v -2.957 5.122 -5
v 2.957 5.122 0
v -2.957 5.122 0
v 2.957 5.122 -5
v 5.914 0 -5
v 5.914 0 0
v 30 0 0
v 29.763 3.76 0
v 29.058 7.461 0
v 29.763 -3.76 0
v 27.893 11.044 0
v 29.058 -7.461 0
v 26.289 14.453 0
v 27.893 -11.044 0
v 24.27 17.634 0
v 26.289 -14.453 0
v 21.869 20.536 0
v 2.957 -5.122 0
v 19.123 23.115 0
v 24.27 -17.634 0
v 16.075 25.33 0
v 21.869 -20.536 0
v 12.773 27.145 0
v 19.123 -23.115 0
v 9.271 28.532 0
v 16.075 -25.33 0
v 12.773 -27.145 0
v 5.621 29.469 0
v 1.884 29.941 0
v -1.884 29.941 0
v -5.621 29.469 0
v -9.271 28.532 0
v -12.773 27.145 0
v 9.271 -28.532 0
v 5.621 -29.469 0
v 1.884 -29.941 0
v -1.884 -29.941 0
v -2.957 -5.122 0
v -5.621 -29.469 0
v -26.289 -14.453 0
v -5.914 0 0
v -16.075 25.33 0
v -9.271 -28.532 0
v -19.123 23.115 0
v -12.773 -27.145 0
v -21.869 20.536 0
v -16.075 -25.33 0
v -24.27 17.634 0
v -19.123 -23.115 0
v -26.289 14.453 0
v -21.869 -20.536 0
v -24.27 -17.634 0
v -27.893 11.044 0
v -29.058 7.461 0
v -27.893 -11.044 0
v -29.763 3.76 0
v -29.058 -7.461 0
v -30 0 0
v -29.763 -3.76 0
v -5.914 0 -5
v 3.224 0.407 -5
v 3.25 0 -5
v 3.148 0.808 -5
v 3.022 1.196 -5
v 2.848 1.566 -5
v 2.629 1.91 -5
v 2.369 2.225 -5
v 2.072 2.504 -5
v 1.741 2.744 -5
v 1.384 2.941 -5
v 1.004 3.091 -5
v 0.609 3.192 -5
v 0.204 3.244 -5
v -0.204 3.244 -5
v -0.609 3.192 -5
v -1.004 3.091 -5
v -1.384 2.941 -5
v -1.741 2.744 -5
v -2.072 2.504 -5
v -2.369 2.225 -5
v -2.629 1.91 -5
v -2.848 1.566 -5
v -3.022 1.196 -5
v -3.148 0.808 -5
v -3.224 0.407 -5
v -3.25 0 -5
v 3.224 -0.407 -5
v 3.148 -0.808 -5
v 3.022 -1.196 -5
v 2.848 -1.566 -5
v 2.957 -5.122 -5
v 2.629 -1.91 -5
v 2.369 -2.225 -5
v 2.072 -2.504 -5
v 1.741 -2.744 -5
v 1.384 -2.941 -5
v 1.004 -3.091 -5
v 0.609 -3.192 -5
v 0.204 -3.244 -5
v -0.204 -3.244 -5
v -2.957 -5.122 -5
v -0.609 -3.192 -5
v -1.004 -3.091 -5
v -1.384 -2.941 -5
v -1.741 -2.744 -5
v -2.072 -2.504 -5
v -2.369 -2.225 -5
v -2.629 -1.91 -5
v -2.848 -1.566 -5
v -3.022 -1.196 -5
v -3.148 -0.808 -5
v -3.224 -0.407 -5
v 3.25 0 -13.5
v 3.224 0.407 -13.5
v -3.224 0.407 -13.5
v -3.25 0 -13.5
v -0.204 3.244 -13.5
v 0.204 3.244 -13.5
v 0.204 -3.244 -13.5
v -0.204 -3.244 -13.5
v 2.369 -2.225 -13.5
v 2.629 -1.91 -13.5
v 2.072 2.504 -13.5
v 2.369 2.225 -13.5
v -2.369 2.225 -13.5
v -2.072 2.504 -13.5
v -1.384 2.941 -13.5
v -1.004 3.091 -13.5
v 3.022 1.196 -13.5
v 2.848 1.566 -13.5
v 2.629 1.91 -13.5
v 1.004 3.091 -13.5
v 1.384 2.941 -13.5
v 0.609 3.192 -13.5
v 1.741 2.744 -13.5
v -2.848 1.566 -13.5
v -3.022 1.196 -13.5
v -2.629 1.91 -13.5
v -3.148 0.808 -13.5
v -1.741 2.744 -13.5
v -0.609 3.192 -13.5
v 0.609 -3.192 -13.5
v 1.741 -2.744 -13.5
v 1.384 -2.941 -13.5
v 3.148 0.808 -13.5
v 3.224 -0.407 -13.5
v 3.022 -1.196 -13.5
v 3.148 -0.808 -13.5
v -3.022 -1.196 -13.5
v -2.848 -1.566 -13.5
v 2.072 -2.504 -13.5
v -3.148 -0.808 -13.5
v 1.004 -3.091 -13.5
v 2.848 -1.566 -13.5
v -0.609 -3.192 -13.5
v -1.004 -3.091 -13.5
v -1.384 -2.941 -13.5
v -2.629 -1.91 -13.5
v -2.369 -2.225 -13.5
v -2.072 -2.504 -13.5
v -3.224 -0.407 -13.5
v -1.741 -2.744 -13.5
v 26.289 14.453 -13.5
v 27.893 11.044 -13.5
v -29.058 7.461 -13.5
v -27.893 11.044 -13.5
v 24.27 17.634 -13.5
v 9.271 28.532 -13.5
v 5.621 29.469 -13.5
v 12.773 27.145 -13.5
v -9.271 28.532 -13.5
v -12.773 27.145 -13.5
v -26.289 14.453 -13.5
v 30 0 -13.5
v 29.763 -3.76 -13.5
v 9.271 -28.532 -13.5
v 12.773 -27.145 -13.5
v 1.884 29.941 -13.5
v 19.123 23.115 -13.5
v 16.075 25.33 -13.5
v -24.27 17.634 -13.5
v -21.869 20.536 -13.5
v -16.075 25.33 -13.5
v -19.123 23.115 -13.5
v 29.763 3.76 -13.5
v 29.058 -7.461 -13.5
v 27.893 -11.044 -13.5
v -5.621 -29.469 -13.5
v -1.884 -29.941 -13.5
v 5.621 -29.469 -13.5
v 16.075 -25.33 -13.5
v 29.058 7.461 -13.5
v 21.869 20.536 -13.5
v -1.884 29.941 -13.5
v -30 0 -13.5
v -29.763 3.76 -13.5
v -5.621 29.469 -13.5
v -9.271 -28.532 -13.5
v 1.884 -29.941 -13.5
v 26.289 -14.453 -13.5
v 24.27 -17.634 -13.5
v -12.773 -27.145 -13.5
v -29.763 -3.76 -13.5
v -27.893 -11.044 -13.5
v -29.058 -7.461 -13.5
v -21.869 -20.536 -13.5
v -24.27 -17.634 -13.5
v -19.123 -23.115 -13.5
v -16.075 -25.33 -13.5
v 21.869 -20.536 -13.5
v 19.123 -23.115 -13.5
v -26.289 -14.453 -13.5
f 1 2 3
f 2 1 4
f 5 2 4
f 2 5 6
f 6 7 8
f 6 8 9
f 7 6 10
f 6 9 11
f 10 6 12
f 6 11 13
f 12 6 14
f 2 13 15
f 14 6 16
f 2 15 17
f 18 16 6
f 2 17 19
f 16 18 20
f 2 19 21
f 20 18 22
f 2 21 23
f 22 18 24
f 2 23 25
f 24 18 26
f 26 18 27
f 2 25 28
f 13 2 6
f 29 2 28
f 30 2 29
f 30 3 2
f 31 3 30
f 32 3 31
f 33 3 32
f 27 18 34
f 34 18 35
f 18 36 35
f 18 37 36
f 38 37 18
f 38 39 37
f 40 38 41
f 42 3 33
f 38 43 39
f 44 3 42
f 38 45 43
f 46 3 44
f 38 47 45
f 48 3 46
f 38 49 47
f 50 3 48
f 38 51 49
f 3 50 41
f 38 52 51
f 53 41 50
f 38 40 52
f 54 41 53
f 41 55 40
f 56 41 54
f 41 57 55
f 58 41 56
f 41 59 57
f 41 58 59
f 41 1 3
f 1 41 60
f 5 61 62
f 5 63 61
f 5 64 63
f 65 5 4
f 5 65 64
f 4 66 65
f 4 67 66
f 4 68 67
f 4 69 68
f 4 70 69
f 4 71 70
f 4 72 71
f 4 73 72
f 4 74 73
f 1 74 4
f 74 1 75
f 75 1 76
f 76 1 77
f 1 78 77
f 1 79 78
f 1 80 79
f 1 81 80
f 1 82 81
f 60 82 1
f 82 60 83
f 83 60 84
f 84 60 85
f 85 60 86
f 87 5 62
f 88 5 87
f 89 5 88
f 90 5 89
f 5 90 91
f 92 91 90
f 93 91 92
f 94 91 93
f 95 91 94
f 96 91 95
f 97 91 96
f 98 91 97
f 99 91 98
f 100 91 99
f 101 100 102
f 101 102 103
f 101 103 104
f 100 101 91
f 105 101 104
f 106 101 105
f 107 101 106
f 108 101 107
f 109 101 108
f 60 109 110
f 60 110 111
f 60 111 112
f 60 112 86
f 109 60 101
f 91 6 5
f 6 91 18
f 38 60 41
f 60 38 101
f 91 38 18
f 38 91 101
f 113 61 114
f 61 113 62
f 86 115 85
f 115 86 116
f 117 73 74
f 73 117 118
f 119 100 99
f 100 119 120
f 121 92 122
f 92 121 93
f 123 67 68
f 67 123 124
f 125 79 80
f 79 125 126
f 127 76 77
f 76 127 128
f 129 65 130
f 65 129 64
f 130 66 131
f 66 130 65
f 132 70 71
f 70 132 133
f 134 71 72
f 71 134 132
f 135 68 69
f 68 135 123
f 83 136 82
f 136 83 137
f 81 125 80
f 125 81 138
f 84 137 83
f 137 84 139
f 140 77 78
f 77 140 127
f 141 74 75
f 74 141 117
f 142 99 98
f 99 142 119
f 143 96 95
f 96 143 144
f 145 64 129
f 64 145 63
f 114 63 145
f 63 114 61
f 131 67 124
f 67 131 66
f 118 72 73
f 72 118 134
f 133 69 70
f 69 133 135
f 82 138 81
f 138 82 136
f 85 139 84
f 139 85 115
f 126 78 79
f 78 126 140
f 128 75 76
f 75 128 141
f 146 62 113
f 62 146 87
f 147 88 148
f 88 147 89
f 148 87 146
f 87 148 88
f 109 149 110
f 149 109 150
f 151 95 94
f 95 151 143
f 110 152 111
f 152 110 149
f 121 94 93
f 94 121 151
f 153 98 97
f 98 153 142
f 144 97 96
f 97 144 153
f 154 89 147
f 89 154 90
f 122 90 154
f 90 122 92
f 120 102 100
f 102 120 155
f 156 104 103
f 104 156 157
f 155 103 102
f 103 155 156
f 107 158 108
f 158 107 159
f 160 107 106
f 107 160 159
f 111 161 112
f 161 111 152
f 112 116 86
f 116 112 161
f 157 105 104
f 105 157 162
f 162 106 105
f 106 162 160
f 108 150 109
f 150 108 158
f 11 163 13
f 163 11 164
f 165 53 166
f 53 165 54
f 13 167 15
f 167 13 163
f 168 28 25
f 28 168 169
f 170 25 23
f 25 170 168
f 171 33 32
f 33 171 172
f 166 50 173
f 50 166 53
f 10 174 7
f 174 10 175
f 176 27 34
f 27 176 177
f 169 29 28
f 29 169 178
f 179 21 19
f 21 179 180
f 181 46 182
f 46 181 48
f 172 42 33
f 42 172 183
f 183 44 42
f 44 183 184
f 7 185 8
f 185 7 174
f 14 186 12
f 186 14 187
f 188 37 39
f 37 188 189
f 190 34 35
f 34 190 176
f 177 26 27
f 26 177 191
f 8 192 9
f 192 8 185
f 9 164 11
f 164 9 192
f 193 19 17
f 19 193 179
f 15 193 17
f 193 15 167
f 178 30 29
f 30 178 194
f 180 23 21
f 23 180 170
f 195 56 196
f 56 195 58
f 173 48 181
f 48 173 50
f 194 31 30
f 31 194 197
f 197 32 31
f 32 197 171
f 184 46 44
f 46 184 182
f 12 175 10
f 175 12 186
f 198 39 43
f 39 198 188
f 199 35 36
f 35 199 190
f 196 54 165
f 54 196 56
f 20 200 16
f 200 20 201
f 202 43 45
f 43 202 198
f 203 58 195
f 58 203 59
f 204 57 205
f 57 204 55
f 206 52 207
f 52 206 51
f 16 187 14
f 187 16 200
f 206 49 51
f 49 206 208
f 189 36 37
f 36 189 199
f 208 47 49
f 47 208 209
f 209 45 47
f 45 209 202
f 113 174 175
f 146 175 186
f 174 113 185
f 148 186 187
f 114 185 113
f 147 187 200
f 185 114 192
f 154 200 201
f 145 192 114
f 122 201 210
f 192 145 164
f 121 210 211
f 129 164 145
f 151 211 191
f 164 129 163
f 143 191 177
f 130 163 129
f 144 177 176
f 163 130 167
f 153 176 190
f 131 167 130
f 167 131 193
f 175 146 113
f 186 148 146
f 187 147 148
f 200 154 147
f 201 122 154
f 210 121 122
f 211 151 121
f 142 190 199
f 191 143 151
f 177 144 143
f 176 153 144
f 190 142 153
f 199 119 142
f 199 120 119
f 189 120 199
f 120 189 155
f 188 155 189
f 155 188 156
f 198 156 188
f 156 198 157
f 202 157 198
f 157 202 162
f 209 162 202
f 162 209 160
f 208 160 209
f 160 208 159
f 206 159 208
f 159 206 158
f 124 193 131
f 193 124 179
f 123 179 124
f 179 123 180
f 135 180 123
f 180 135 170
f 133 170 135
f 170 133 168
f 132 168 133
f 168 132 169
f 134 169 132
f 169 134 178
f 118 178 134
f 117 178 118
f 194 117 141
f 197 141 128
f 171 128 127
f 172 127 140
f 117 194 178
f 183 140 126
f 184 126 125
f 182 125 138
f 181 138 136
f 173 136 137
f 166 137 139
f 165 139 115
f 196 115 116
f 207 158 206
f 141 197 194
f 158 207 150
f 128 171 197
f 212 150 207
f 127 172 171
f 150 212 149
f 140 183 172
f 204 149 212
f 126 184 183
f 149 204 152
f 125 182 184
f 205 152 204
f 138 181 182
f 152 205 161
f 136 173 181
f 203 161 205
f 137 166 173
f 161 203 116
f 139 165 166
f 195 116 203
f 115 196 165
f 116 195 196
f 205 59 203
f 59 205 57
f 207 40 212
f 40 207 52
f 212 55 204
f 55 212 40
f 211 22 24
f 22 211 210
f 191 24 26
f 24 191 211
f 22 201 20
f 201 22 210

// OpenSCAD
$fn = 50;

difference() {
	union() {
		translate(v = [0, 0, -13.5]) {
			cylinder(h = 13.5, r = 30.0);
		}
	}
	union() {
		translate(v = [0, 0, 0]) {
			rotate(a = [0, 0, 0]) {
				difference() {
					union() {
						translate(v = [0, 0, -5]) {
							linear_extrude(height = 5) {
								polygon(points = [[5.914249999999999, 0.0], [2.957125, 5.1218907443321156], [-2.9571249999999982, 5.1218907443321156], [-5.914249999999999, 7.242867331857232e-16], [-2.9571250000000022, -5.121890744332115], [2.9571249999999956, -5.121890744332118]]);
							}
						}
					}
					union();
				}
			}
		}
		#translate(v = [0, 0, -100.0]) {
			cylinder(h = 200, r = 3.25);
		}
	}
}
